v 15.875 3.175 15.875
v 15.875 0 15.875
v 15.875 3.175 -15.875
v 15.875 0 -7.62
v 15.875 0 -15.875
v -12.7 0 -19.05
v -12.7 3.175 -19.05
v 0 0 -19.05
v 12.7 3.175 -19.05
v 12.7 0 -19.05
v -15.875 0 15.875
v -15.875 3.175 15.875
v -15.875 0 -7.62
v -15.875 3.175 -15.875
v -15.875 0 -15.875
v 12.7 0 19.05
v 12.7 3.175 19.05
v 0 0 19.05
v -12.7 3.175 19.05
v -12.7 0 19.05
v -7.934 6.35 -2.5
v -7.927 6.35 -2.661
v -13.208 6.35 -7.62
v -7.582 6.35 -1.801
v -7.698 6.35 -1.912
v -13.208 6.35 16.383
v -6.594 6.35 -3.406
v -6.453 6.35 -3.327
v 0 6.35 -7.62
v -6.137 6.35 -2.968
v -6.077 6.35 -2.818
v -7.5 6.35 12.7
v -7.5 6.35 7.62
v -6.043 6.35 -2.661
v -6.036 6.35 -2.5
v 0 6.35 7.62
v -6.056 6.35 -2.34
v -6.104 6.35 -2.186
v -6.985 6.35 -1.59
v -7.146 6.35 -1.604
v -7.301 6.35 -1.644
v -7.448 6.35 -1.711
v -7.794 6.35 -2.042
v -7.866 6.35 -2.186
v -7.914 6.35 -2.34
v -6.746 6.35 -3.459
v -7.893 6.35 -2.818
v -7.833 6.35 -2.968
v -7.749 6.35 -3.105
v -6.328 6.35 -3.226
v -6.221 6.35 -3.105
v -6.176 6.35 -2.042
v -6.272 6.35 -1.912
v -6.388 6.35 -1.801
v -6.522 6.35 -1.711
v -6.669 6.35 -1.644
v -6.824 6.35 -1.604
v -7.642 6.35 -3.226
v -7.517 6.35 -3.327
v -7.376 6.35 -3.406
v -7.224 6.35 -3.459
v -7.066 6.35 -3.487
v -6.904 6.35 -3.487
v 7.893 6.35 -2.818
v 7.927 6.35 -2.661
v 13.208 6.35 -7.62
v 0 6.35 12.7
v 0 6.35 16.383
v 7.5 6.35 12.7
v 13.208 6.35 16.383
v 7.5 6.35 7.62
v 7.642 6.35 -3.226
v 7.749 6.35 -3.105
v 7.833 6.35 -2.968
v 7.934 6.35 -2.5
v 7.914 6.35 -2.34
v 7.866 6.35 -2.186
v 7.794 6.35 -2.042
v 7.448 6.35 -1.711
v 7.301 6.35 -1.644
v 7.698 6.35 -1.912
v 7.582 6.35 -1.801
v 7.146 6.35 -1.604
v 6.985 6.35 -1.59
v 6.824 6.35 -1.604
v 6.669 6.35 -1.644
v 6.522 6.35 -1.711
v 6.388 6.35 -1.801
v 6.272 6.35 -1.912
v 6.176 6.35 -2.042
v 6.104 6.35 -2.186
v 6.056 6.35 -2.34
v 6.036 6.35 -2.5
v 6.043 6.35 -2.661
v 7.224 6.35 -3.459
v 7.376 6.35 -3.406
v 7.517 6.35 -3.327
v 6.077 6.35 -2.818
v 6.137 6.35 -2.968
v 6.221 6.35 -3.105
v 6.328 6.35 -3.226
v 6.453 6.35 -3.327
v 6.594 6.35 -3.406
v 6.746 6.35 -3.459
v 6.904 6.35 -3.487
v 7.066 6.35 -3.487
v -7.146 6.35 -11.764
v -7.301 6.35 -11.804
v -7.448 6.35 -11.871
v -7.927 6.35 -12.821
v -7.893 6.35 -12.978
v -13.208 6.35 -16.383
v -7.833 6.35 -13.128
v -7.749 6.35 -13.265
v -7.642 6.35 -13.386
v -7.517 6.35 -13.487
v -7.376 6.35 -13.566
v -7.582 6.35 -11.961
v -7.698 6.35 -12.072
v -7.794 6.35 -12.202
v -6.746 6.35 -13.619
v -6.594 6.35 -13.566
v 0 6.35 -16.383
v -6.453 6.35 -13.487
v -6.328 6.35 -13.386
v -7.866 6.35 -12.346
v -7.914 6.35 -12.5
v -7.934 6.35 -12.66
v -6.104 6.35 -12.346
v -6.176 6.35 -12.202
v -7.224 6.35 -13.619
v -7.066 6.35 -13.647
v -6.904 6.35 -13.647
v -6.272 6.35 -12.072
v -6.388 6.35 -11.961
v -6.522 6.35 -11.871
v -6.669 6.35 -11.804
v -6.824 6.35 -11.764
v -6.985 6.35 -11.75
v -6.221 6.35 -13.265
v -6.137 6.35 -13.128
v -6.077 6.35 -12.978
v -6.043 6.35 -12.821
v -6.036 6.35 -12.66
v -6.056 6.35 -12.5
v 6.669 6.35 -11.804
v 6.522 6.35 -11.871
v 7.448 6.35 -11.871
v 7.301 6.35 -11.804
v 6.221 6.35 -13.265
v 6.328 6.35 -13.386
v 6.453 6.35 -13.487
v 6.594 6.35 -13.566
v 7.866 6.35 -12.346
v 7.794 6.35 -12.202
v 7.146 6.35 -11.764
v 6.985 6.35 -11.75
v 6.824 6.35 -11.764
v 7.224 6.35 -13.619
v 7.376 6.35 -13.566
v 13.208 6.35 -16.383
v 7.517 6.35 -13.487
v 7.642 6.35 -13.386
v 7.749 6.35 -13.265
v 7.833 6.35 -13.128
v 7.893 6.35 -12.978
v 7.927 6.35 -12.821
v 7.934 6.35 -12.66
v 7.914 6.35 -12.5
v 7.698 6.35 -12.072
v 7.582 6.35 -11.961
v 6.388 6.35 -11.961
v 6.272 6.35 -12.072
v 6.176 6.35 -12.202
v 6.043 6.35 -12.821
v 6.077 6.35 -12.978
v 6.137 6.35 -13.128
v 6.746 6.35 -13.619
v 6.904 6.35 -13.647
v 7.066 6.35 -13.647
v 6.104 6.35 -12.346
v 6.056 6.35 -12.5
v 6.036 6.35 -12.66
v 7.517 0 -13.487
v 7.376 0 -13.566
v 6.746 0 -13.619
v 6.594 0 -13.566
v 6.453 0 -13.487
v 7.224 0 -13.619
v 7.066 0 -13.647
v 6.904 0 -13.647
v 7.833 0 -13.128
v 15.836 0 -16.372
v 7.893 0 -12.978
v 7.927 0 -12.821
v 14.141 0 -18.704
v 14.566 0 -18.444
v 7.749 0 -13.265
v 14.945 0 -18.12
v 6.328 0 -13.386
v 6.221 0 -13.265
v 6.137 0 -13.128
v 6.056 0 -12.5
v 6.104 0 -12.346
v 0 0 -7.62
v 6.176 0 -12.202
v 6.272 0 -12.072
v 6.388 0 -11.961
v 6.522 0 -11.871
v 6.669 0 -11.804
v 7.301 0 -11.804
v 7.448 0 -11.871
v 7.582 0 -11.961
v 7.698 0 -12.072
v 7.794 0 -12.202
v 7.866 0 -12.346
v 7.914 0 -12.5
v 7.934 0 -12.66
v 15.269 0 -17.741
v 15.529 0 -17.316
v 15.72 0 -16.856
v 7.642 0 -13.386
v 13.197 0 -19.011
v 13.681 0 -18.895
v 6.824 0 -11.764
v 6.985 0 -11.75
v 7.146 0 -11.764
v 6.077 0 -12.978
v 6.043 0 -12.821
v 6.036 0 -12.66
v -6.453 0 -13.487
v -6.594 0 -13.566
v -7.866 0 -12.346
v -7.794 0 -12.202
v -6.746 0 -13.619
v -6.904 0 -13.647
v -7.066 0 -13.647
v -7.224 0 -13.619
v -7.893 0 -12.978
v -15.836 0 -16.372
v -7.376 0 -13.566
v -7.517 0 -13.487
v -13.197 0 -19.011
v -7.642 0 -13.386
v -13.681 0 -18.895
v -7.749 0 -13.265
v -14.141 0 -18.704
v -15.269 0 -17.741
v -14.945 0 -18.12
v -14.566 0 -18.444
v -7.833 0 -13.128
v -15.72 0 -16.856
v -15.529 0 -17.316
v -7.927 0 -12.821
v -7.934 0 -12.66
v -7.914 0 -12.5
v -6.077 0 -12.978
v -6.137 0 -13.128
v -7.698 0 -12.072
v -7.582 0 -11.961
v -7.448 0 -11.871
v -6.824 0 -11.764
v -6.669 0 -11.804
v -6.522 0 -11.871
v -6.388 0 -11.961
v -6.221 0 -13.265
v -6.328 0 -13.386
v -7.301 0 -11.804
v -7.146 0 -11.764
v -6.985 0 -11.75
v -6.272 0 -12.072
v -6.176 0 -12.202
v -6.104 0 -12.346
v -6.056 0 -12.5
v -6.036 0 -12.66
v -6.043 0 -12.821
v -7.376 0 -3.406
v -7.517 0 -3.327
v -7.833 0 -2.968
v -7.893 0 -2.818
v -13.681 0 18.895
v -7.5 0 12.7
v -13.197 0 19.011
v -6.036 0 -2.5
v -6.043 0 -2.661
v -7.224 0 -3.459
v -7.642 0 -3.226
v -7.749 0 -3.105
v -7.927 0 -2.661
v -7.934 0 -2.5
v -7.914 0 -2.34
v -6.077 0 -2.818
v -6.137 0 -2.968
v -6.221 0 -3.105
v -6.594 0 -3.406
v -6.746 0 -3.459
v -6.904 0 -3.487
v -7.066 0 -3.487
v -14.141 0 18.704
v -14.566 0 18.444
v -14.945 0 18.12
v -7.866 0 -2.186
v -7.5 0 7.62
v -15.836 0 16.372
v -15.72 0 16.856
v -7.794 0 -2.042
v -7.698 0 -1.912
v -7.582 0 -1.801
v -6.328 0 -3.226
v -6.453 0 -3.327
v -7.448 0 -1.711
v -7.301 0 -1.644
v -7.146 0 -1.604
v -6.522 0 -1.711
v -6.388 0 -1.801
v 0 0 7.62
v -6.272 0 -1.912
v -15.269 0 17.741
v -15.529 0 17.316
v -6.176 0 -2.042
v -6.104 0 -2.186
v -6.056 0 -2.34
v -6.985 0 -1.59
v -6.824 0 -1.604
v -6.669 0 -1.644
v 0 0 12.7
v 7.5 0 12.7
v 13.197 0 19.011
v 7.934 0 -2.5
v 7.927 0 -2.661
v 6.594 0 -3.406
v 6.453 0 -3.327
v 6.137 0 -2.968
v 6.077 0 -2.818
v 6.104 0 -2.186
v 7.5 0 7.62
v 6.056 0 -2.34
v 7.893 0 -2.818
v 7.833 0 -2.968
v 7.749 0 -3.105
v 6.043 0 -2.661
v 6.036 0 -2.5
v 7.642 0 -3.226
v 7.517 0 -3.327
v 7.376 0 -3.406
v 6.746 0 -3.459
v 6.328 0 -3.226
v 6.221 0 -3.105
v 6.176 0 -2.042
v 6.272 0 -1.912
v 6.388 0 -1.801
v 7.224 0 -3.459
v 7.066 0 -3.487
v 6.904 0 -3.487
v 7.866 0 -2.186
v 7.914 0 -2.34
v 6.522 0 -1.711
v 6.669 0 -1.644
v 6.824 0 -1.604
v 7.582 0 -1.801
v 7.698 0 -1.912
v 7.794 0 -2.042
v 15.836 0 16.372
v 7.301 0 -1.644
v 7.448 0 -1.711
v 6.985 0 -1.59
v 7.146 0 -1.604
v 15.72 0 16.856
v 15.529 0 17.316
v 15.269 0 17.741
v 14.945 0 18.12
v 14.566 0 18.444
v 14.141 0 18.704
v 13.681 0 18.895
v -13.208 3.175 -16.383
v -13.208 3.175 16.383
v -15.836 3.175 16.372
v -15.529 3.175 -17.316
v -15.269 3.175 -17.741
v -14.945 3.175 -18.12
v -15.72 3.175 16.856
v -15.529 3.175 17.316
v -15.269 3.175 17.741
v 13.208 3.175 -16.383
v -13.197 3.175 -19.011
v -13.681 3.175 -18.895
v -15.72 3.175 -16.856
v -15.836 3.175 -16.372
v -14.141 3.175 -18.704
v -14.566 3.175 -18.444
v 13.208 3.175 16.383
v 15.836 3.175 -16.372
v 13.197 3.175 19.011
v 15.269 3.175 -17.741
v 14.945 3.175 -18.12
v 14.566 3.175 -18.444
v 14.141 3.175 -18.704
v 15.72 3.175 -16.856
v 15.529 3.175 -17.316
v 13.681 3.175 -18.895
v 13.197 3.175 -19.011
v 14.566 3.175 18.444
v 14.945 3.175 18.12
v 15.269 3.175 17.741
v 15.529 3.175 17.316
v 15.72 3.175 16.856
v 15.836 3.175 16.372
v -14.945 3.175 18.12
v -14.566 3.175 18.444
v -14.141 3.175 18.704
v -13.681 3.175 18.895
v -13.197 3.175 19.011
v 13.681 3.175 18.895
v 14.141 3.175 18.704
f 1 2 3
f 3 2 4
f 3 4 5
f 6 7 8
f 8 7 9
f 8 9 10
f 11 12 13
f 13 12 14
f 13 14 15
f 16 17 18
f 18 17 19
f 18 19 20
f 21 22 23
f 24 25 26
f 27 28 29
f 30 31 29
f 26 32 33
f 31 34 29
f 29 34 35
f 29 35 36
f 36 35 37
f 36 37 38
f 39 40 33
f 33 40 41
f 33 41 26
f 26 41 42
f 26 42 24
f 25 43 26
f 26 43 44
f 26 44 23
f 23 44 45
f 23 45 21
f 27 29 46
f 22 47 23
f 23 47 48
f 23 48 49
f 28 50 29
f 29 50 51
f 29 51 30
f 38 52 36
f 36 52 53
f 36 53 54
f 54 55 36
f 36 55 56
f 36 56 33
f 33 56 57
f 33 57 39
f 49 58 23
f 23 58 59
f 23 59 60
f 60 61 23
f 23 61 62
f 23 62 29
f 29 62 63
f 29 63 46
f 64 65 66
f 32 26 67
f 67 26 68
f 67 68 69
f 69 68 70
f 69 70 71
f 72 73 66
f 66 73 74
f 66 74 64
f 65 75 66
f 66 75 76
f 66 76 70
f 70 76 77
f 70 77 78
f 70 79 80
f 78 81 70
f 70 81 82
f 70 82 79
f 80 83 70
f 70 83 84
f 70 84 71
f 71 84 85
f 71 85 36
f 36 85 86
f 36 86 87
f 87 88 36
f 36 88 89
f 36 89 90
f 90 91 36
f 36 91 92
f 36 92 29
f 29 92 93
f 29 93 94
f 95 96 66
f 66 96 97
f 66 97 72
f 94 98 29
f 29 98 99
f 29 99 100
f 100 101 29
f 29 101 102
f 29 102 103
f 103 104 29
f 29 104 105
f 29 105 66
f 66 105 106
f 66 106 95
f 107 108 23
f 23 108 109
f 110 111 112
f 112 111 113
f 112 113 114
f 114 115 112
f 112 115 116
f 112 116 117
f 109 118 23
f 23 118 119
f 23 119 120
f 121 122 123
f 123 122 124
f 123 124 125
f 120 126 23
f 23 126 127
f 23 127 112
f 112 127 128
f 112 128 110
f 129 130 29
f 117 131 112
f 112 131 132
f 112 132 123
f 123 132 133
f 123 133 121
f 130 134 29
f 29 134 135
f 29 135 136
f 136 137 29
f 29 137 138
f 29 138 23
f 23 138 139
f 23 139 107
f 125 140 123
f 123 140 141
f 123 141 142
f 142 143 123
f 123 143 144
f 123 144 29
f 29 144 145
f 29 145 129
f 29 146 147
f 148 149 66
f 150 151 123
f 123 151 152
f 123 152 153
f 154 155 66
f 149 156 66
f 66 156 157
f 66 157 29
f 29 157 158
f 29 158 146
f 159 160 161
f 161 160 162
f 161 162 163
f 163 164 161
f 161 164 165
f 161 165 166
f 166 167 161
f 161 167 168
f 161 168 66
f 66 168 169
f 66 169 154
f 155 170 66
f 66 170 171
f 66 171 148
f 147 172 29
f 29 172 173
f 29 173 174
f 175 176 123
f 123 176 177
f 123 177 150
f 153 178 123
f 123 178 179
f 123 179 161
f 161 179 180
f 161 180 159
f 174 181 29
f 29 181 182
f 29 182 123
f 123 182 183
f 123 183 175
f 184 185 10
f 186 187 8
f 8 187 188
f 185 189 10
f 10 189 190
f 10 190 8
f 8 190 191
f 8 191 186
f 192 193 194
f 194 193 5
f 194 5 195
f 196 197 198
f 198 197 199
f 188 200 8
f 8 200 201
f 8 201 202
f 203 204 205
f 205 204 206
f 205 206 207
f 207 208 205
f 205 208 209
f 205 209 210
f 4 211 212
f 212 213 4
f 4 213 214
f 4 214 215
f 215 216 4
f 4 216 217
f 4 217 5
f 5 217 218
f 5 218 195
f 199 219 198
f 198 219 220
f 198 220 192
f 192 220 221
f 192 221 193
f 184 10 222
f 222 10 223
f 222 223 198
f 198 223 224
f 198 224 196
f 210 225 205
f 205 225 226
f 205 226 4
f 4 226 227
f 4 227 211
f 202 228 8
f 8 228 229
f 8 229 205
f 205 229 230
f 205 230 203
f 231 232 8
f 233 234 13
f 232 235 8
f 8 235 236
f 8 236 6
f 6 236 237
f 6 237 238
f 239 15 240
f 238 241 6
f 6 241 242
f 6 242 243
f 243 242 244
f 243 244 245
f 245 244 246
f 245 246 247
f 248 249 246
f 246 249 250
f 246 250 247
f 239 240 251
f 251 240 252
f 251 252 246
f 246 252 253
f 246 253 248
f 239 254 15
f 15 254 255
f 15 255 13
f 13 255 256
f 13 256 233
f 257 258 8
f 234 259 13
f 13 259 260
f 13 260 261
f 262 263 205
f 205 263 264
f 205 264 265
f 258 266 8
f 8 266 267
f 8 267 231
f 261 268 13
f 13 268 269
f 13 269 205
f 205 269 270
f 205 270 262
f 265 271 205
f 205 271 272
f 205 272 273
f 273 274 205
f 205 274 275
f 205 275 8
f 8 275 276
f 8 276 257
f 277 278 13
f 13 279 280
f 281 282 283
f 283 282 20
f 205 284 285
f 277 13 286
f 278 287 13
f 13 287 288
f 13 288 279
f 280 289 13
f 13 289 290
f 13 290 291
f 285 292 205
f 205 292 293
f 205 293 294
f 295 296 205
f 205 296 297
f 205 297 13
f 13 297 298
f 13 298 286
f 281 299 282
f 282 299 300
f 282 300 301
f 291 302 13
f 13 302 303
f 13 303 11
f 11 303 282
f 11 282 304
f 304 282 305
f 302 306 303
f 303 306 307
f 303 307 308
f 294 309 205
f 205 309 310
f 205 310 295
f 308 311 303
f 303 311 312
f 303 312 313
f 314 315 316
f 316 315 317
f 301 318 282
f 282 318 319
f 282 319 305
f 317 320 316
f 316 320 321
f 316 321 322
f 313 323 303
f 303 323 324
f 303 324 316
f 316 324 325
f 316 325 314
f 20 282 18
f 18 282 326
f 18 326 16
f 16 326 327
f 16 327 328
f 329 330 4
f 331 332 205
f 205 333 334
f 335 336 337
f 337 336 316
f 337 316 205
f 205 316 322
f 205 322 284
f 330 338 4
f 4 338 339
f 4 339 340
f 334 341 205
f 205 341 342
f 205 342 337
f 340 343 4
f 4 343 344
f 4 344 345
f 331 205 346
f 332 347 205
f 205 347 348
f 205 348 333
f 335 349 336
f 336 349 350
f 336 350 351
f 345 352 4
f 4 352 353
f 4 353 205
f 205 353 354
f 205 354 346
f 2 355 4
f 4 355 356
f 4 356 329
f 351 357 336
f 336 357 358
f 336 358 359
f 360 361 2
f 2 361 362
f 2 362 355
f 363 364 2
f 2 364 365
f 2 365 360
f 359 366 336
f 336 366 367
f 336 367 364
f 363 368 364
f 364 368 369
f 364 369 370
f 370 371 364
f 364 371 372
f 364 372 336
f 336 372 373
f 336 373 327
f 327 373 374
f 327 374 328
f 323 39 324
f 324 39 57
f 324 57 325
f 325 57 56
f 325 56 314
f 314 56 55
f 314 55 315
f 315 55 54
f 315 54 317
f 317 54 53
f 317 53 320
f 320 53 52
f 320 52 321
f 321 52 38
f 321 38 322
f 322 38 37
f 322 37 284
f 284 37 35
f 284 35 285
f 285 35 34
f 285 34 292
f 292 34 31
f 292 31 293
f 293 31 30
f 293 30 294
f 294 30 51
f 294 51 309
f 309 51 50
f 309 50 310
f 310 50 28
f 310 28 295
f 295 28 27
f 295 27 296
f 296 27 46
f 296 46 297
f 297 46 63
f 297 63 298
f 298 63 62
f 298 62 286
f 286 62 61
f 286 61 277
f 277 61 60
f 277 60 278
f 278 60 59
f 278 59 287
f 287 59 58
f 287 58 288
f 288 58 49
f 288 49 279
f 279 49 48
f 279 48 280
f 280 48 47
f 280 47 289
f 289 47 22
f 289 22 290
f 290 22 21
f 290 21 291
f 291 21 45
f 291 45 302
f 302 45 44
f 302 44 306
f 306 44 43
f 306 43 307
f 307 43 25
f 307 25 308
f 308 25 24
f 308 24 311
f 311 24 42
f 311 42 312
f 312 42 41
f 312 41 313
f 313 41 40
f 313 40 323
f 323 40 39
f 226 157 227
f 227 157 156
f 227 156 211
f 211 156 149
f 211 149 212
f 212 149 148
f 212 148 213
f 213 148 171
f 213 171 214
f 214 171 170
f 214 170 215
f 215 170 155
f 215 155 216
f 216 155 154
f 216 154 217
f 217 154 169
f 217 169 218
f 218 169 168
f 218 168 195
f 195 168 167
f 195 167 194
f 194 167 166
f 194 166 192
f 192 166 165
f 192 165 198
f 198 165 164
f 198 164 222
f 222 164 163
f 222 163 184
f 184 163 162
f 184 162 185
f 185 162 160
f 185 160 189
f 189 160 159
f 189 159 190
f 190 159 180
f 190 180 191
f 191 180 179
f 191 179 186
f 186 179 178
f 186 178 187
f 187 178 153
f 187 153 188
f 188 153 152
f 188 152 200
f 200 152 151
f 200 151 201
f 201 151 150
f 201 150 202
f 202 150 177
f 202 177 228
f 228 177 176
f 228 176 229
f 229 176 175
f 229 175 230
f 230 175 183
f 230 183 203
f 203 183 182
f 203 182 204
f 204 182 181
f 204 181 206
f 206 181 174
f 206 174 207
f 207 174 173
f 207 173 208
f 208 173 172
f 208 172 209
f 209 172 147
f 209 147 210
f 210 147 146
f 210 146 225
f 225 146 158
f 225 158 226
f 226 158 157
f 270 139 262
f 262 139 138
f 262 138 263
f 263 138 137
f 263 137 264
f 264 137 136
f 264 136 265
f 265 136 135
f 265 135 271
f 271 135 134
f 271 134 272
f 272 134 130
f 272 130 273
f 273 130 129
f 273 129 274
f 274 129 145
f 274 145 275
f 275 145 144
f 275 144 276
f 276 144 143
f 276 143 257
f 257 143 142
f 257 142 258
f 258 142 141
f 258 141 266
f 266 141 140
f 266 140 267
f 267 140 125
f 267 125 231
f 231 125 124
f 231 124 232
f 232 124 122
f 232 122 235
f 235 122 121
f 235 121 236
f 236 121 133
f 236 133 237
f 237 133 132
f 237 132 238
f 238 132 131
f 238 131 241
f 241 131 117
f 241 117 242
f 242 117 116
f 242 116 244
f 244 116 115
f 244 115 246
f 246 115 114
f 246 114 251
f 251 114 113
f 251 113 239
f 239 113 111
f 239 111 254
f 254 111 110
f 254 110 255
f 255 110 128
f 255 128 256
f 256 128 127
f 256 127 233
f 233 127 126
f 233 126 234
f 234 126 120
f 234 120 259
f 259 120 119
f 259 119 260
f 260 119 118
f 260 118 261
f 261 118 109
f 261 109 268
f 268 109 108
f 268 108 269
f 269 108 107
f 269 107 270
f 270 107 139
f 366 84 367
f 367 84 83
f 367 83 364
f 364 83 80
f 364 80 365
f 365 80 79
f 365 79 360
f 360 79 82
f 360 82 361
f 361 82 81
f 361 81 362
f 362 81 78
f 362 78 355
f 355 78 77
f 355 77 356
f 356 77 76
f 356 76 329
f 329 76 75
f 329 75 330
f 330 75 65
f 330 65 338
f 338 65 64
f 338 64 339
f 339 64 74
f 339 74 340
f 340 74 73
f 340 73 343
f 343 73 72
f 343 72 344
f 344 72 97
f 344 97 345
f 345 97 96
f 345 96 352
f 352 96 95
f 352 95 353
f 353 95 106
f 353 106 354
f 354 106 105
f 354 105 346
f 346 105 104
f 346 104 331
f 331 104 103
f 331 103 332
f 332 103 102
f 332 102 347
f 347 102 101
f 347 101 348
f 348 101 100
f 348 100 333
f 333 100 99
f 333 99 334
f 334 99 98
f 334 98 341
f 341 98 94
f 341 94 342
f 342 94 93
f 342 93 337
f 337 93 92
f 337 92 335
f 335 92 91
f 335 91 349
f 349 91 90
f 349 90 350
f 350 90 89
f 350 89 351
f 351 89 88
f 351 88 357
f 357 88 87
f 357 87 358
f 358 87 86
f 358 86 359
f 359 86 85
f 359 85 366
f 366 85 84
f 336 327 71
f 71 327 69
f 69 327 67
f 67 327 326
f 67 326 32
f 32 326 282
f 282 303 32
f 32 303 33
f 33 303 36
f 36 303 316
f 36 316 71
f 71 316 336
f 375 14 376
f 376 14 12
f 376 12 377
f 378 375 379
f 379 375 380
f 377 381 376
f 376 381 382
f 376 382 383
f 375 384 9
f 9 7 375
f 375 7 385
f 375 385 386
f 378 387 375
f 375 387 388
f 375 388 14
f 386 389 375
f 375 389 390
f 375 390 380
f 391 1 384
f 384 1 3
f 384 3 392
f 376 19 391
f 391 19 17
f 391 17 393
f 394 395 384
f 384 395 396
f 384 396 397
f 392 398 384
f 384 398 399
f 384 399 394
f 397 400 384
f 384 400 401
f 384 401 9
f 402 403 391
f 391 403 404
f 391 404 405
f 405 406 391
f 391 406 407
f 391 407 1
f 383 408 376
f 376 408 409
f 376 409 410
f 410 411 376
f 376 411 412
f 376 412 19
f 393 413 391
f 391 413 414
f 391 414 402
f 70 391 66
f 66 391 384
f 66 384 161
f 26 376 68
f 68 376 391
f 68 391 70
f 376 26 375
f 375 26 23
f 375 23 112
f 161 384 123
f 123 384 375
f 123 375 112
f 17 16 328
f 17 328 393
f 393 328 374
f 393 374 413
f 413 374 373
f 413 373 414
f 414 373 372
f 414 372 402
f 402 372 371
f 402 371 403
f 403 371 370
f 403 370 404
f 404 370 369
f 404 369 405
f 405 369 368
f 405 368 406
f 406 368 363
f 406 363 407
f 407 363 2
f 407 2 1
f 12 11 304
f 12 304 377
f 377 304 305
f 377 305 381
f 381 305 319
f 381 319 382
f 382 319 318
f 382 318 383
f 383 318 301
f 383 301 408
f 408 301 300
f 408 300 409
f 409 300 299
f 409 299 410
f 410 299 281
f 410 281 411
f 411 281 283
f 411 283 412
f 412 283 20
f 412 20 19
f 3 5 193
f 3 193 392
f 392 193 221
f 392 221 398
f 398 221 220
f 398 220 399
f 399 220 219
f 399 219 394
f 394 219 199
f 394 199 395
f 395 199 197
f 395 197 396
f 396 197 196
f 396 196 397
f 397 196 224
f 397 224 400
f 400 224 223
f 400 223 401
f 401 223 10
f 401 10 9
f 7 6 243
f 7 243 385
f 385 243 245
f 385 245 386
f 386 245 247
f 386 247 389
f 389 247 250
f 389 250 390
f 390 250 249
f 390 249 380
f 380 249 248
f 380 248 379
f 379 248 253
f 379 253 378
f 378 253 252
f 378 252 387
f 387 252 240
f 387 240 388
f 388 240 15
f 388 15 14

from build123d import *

# Parameters (mm, degrees)
SKETCH1_W           = 31.75
SKETCH1_H           = 38.1
BOSS_EXTRUDE1_DEPTH = 6.35
SKETCH2_R           = 0.95
CUT_EXTRUDE1_DEPTH  = 26.597668351
SKETCH3_W           = 15
SKETCH3_H           = 5.08
CUT_EXTRUDE2_DEPTH  = 26.597668351
SKETCH4_W           = 31.75
SKETCH4_H           = 38.1
SKETCH4_W_2         = 26.416
SKETCH4_H_2         = 32.766
CUT_EXTRUDE3_DEPTH  = 3.175
FILLET1_R           = 3.175


with BuildPart() as part:
    # Sketch1 → Boss-Extrude1 (new body)
    with BuildSketch(Plane(origin=(0, 0, 0), x_dir=(1, 0, 0), z_dir=(0, 1, 0))):
        Rectangle(SKETCH1_W, SKETCH1_H)
    extrude(amount=BOSS_EXTRUDE1_DEPTH)

    # Sketch2 → Cut-Extrude1 (cut, through all)
    with BuildSketch(Plane(origin=(0, 6.35, 0), x_dir=(1, 0, 0), z_dir=(0, 1, 0))):
        with Locations(Location((-6.985, 2.54, 0), (0, 0, 270))):
            Circle(SKETCH2_R)
        with Locations(Location((6.985, 2.54, 0), (0, 0, 270))):
            Circle(SKETCH2_R)
        with Locations(Location((-6.985, 12.7, 0), (0, 0, 270))):
            Circle(SKETCH2_R)
        with Locations(Location((6.985, 12.7, 0), (0, 0, 270))):
            Circle(SKETCH2_R)
    extrude(amount=-CUT_EXTRUDE1_DEPTH, mode=Mode.SUBTRACT)

    # Sketch3 → Cut-Extrude2 (cut, through all)
    with BuildSketch(Plane(origin=(0, 6.35, 0), x_dir=(1, 0, 0), z_dir=(0, 1, 0))):
        with Locations((0, -10.16)):
            Rectangle(SKETCH3_W, SKETCH3_H)
    extrude(amount=-CUT_EXTRUDE2_DEPTH, mode=Mode.SUBTRACT)

    # Sketch4 → Cut-Extrude3 (cut)
    with BuildSketch(Plane(origin=(0, 6.35, 0), x_dir=(1, 0, 0), z_dir=(0, 1, 0))):
        Rectangle(SKETCH4_W, SKETCH4_H)
        Rectangle(SKETCH4_W_2, SKETCH4_H_2, mode=Mode.SUBTRACT)
    extrude(amount=-CUT_EXTRUDE3_DEPTH, mode=Mode.SUBTRACT)

    # Fillet1
    fillet1_edges = [part.edges().sort_by_distance(p)[0] for p in [
        (15.875, 1.5875, 19.05),
        (-15.875, 1.5875, 19.05),
        (-15.875, 1.5875, -19.05),
        (15.875, 1.5875, -19.05),
    ]]
    fillet(fillet1_edges, radius=FILLET1_R)


solid = part.part
